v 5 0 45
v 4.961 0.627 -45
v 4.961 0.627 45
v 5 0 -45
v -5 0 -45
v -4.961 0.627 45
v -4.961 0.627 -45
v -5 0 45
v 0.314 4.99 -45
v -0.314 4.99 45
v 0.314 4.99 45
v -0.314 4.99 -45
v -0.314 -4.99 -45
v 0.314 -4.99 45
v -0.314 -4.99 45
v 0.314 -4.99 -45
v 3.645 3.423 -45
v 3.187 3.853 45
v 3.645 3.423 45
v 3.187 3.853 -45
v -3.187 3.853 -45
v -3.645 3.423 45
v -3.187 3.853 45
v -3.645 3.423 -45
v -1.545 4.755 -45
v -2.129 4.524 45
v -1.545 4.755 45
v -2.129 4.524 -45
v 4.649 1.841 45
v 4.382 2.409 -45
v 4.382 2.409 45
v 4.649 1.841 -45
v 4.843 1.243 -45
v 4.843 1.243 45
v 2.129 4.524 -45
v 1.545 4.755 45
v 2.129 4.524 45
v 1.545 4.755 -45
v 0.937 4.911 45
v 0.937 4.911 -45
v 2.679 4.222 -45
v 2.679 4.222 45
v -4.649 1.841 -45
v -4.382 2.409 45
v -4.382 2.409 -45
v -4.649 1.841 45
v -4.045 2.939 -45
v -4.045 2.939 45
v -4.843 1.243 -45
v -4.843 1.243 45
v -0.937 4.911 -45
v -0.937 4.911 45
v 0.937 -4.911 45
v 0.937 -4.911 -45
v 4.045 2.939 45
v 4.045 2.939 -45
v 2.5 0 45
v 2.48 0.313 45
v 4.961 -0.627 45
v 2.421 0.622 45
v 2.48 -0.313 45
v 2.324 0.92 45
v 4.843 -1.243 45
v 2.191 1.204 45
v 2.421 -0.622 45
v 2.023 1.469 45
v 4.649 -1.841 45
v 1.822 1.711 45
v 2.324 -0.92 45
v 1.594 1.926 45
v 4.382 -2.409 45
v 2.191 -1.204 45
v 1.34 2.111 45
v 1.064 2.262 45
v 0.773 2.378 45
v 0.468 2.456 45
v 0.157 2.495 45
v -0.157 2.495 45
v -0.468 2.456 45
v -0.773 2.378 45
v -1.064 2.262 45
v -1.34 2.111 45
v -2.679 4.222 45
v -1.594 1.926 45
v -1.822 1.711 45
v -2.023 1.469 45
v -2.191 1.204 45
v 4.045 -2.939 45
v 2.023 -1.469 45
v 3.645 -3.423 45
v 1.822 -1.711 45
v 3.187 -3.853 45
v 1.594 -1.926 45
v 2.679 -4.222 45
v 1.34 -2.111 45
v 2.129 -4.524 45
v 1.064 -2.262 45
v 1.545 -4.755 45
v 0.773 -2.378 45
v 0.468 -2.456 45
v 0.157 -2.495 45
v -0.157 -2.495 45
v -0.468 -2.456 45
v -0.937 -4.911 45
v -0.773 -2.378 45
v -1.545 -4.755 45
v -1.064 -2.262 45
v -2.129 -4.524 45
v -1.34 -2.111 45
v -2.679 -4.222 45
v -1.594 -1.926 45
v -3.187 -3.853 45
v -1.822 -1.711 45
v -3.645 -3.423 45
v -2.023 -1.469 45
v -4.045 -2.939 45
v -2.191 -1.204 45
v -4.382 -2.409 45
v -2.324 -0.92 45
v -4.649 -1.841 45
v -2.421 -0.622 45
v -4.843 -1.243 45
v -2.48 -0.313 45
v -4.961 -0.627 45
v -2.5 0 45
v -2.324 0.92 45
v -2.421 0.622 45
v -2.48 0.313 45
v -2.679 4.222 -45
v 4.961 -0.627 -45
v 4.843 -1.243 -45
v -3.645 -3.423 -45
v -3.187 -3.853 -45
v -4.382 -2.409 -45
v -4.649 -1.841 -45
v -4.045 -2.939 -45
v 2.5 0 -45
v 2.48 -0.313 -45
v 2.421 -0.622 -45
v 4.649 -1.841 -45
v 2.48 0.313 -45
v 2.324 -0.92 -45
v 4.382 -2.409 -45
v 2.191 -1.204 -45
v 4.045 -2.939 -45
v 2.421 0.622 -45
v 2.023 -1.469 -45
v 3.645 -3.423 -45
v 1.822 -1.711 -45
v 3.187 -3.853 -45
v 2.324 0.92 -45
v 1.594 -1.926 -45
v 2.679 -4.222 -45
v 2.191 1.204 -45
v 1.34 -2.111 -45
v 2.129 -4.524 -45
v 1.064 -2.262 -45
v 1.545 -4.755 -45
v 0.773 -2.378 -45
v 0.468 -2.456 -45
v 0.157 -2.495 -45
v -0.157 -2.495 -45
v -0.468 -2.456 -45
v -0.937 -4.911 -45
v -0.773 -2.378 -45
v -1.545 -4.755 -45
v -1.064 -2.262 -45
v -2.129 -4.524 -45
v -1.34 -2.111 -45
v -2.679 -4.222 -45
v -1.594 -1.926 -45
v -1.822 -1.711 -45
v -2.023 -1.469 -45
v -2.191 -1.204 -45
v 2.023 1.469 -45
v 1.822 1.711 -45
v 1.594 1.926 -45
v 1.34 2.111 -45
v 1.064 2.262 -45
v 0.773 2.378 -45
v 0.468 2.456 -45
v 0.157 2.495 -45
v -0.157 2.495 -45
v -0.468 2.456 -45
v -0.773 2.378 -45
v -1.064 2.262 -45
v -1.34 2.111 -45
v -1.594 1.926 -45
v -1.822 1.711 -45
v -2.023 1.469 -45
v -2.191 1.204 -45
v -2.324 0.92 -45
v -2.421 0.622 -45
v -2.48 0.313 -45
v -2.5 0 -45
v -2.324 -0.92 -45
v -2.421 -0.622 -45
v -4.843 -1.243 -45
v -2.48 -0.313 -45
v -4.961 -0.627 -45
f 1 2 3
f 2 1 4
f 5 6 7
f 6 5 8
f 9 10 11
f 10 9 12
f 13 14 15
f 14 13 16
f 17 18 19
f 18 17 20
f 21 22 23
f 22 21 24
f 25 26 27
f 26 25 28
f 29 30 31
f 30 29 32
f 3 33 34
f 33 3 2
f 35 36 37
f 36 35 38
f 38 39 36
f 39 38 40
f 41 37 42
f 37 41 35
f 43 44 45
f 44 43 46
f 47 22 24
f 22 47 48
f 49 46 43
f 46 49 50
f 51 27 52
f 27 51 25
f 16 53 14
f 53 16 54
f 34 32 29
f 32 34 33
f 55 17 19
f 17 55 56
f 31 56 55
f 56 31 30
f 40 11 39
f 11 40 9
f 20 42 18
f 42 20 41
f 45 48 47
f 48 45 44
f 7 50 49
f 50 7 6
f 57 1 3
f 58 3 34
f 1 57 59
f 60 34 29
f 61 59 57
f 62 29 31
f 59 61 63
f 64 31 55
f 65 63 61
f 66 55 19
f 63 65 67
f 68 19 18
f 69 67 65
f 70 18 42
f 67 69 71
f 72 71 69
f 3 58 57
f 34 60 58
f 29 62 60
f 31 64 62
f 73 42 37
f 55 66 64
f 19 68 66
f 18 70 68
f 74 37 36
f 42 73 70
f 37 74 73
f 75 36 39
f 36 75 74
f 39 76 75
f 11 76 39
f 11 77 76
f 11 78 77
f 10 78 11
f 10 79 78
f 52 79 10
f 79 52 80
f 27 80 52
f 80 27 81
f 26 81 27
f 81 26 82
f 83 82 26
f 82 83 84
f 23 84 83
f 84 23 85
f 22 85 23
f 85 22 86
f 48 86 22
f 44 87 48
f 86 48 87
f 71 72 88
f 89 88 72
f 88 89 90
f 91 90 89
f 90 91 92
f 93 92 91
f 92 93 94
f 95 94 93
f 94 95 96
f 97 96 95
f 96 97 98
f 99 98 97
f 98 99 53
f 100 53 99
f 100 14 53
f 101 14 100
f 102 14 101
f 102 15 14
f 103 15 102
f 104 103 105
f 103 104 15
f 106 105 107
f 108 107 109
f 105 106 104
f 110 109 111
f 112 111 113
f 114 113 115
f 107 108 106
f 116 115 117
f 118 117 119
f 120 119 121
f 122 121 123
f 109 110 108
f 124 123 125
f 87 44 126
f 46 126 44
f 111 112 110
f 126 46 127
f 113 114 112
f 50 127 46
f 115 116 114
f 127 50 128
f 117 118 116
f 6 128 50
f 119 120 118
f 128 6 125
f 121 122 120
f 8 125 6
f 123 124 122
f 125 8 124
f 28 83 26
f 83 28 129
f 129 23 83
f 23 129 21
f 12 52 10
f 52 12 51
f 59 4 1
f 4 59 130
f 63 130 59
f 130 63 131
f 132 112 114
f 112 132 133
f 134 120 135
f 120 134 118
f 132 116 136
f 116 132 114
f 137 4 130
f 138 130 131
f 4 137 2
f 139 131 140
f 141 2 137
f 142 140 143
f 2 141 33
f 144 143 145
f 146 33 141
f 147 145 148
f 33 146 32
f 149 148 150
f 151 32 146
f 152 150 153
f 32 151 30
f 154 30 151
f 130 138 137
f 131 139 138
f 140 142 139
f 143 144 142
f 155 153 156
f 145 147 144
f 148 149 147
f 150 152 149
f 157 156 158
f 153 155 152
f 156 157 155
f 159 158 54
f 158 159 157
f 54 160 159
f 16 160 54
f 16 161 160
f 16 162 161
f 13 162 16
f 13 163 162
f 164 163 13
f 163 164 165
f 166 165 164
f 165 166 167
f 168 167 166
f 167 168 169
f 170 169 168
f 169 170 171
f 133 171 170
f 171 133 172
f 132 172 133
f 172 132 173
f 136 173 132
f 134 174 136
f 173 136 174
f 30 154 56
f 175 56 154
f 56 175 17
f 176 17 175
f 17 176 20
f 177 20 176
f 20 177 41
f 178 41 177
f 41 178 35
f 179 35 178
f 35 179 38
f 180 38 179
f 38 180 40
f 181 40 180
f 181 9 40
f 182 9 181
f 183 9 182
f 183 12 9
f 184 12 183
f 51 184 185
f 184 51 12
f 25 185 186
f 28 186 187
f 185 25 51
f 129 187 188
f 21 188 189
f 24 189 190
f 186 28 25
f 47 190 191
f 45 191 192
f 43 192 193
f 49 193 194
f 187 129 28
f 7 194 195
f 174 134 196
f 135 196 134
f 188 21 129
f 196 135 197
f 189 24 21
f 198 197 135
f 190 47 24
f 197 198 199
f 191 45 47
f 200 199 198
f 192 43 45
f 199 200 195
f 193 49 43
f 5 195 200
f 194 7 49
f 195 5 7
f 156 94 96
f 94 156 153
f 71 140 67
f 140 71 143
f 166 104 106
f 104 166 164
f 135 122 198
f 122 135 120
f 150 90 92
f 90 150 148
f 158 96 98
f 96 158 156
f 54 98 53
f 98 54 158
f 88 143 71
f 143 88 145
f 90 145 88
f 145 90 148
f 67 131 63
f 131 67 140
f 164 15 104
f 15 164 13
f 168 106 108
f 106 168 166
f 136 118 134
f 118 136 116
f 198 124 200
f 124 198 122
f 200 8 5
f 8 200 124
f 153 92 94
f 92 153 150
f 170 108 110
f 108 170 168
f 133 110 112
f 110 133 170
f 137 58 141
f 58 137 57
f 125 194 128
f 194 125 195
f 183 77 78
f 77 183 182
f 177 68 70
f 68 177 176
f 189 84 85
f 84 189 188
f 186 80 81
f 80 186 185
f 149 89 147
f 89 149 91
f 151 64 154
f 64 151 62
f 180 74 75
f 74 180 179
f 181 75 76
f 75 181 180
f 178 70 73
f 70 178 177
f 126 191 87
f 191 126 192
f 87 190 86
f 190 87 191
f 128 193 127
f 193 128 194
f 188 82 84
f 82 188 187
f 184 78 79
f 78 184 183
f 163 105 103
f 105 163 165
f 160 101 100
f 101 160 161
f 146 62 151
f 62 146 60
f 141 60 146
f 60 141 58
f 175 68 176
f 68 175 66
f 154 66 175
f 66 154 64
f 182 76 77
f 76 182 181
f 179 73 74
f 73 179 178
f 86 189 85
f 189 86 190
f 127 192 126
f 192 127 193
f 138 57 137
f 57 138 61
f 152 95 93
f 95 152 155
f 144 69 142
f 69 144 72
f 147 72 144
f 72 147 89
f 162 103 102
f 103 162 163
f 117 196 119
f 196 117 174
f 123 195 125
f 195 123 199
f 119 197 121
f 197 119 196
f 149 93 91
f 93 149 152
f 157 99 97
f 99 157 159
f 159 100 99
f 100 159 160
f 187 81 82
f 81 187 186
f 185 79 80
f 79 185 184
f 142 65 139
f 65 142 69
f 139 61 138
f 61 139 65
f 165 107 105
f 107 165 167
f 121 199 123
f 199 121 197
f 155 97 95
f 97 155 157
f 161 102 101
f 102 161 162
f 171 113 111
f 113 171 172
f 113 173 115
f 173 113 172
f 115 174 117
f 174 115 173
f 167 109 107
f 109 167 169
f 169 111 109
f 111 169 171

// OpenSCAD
$fn = 50;


difference() {
	union() {
		translate(v = [0, 0, -45.0000000000]) {
			cylinder(h = 90, r = 5.0000000000);
		}
	}
	union() {
		translate(v = [0, 0, -100.0000000000]) {
			cylinder(h = 200, r = 2.5000000000);
		}
	}
}
